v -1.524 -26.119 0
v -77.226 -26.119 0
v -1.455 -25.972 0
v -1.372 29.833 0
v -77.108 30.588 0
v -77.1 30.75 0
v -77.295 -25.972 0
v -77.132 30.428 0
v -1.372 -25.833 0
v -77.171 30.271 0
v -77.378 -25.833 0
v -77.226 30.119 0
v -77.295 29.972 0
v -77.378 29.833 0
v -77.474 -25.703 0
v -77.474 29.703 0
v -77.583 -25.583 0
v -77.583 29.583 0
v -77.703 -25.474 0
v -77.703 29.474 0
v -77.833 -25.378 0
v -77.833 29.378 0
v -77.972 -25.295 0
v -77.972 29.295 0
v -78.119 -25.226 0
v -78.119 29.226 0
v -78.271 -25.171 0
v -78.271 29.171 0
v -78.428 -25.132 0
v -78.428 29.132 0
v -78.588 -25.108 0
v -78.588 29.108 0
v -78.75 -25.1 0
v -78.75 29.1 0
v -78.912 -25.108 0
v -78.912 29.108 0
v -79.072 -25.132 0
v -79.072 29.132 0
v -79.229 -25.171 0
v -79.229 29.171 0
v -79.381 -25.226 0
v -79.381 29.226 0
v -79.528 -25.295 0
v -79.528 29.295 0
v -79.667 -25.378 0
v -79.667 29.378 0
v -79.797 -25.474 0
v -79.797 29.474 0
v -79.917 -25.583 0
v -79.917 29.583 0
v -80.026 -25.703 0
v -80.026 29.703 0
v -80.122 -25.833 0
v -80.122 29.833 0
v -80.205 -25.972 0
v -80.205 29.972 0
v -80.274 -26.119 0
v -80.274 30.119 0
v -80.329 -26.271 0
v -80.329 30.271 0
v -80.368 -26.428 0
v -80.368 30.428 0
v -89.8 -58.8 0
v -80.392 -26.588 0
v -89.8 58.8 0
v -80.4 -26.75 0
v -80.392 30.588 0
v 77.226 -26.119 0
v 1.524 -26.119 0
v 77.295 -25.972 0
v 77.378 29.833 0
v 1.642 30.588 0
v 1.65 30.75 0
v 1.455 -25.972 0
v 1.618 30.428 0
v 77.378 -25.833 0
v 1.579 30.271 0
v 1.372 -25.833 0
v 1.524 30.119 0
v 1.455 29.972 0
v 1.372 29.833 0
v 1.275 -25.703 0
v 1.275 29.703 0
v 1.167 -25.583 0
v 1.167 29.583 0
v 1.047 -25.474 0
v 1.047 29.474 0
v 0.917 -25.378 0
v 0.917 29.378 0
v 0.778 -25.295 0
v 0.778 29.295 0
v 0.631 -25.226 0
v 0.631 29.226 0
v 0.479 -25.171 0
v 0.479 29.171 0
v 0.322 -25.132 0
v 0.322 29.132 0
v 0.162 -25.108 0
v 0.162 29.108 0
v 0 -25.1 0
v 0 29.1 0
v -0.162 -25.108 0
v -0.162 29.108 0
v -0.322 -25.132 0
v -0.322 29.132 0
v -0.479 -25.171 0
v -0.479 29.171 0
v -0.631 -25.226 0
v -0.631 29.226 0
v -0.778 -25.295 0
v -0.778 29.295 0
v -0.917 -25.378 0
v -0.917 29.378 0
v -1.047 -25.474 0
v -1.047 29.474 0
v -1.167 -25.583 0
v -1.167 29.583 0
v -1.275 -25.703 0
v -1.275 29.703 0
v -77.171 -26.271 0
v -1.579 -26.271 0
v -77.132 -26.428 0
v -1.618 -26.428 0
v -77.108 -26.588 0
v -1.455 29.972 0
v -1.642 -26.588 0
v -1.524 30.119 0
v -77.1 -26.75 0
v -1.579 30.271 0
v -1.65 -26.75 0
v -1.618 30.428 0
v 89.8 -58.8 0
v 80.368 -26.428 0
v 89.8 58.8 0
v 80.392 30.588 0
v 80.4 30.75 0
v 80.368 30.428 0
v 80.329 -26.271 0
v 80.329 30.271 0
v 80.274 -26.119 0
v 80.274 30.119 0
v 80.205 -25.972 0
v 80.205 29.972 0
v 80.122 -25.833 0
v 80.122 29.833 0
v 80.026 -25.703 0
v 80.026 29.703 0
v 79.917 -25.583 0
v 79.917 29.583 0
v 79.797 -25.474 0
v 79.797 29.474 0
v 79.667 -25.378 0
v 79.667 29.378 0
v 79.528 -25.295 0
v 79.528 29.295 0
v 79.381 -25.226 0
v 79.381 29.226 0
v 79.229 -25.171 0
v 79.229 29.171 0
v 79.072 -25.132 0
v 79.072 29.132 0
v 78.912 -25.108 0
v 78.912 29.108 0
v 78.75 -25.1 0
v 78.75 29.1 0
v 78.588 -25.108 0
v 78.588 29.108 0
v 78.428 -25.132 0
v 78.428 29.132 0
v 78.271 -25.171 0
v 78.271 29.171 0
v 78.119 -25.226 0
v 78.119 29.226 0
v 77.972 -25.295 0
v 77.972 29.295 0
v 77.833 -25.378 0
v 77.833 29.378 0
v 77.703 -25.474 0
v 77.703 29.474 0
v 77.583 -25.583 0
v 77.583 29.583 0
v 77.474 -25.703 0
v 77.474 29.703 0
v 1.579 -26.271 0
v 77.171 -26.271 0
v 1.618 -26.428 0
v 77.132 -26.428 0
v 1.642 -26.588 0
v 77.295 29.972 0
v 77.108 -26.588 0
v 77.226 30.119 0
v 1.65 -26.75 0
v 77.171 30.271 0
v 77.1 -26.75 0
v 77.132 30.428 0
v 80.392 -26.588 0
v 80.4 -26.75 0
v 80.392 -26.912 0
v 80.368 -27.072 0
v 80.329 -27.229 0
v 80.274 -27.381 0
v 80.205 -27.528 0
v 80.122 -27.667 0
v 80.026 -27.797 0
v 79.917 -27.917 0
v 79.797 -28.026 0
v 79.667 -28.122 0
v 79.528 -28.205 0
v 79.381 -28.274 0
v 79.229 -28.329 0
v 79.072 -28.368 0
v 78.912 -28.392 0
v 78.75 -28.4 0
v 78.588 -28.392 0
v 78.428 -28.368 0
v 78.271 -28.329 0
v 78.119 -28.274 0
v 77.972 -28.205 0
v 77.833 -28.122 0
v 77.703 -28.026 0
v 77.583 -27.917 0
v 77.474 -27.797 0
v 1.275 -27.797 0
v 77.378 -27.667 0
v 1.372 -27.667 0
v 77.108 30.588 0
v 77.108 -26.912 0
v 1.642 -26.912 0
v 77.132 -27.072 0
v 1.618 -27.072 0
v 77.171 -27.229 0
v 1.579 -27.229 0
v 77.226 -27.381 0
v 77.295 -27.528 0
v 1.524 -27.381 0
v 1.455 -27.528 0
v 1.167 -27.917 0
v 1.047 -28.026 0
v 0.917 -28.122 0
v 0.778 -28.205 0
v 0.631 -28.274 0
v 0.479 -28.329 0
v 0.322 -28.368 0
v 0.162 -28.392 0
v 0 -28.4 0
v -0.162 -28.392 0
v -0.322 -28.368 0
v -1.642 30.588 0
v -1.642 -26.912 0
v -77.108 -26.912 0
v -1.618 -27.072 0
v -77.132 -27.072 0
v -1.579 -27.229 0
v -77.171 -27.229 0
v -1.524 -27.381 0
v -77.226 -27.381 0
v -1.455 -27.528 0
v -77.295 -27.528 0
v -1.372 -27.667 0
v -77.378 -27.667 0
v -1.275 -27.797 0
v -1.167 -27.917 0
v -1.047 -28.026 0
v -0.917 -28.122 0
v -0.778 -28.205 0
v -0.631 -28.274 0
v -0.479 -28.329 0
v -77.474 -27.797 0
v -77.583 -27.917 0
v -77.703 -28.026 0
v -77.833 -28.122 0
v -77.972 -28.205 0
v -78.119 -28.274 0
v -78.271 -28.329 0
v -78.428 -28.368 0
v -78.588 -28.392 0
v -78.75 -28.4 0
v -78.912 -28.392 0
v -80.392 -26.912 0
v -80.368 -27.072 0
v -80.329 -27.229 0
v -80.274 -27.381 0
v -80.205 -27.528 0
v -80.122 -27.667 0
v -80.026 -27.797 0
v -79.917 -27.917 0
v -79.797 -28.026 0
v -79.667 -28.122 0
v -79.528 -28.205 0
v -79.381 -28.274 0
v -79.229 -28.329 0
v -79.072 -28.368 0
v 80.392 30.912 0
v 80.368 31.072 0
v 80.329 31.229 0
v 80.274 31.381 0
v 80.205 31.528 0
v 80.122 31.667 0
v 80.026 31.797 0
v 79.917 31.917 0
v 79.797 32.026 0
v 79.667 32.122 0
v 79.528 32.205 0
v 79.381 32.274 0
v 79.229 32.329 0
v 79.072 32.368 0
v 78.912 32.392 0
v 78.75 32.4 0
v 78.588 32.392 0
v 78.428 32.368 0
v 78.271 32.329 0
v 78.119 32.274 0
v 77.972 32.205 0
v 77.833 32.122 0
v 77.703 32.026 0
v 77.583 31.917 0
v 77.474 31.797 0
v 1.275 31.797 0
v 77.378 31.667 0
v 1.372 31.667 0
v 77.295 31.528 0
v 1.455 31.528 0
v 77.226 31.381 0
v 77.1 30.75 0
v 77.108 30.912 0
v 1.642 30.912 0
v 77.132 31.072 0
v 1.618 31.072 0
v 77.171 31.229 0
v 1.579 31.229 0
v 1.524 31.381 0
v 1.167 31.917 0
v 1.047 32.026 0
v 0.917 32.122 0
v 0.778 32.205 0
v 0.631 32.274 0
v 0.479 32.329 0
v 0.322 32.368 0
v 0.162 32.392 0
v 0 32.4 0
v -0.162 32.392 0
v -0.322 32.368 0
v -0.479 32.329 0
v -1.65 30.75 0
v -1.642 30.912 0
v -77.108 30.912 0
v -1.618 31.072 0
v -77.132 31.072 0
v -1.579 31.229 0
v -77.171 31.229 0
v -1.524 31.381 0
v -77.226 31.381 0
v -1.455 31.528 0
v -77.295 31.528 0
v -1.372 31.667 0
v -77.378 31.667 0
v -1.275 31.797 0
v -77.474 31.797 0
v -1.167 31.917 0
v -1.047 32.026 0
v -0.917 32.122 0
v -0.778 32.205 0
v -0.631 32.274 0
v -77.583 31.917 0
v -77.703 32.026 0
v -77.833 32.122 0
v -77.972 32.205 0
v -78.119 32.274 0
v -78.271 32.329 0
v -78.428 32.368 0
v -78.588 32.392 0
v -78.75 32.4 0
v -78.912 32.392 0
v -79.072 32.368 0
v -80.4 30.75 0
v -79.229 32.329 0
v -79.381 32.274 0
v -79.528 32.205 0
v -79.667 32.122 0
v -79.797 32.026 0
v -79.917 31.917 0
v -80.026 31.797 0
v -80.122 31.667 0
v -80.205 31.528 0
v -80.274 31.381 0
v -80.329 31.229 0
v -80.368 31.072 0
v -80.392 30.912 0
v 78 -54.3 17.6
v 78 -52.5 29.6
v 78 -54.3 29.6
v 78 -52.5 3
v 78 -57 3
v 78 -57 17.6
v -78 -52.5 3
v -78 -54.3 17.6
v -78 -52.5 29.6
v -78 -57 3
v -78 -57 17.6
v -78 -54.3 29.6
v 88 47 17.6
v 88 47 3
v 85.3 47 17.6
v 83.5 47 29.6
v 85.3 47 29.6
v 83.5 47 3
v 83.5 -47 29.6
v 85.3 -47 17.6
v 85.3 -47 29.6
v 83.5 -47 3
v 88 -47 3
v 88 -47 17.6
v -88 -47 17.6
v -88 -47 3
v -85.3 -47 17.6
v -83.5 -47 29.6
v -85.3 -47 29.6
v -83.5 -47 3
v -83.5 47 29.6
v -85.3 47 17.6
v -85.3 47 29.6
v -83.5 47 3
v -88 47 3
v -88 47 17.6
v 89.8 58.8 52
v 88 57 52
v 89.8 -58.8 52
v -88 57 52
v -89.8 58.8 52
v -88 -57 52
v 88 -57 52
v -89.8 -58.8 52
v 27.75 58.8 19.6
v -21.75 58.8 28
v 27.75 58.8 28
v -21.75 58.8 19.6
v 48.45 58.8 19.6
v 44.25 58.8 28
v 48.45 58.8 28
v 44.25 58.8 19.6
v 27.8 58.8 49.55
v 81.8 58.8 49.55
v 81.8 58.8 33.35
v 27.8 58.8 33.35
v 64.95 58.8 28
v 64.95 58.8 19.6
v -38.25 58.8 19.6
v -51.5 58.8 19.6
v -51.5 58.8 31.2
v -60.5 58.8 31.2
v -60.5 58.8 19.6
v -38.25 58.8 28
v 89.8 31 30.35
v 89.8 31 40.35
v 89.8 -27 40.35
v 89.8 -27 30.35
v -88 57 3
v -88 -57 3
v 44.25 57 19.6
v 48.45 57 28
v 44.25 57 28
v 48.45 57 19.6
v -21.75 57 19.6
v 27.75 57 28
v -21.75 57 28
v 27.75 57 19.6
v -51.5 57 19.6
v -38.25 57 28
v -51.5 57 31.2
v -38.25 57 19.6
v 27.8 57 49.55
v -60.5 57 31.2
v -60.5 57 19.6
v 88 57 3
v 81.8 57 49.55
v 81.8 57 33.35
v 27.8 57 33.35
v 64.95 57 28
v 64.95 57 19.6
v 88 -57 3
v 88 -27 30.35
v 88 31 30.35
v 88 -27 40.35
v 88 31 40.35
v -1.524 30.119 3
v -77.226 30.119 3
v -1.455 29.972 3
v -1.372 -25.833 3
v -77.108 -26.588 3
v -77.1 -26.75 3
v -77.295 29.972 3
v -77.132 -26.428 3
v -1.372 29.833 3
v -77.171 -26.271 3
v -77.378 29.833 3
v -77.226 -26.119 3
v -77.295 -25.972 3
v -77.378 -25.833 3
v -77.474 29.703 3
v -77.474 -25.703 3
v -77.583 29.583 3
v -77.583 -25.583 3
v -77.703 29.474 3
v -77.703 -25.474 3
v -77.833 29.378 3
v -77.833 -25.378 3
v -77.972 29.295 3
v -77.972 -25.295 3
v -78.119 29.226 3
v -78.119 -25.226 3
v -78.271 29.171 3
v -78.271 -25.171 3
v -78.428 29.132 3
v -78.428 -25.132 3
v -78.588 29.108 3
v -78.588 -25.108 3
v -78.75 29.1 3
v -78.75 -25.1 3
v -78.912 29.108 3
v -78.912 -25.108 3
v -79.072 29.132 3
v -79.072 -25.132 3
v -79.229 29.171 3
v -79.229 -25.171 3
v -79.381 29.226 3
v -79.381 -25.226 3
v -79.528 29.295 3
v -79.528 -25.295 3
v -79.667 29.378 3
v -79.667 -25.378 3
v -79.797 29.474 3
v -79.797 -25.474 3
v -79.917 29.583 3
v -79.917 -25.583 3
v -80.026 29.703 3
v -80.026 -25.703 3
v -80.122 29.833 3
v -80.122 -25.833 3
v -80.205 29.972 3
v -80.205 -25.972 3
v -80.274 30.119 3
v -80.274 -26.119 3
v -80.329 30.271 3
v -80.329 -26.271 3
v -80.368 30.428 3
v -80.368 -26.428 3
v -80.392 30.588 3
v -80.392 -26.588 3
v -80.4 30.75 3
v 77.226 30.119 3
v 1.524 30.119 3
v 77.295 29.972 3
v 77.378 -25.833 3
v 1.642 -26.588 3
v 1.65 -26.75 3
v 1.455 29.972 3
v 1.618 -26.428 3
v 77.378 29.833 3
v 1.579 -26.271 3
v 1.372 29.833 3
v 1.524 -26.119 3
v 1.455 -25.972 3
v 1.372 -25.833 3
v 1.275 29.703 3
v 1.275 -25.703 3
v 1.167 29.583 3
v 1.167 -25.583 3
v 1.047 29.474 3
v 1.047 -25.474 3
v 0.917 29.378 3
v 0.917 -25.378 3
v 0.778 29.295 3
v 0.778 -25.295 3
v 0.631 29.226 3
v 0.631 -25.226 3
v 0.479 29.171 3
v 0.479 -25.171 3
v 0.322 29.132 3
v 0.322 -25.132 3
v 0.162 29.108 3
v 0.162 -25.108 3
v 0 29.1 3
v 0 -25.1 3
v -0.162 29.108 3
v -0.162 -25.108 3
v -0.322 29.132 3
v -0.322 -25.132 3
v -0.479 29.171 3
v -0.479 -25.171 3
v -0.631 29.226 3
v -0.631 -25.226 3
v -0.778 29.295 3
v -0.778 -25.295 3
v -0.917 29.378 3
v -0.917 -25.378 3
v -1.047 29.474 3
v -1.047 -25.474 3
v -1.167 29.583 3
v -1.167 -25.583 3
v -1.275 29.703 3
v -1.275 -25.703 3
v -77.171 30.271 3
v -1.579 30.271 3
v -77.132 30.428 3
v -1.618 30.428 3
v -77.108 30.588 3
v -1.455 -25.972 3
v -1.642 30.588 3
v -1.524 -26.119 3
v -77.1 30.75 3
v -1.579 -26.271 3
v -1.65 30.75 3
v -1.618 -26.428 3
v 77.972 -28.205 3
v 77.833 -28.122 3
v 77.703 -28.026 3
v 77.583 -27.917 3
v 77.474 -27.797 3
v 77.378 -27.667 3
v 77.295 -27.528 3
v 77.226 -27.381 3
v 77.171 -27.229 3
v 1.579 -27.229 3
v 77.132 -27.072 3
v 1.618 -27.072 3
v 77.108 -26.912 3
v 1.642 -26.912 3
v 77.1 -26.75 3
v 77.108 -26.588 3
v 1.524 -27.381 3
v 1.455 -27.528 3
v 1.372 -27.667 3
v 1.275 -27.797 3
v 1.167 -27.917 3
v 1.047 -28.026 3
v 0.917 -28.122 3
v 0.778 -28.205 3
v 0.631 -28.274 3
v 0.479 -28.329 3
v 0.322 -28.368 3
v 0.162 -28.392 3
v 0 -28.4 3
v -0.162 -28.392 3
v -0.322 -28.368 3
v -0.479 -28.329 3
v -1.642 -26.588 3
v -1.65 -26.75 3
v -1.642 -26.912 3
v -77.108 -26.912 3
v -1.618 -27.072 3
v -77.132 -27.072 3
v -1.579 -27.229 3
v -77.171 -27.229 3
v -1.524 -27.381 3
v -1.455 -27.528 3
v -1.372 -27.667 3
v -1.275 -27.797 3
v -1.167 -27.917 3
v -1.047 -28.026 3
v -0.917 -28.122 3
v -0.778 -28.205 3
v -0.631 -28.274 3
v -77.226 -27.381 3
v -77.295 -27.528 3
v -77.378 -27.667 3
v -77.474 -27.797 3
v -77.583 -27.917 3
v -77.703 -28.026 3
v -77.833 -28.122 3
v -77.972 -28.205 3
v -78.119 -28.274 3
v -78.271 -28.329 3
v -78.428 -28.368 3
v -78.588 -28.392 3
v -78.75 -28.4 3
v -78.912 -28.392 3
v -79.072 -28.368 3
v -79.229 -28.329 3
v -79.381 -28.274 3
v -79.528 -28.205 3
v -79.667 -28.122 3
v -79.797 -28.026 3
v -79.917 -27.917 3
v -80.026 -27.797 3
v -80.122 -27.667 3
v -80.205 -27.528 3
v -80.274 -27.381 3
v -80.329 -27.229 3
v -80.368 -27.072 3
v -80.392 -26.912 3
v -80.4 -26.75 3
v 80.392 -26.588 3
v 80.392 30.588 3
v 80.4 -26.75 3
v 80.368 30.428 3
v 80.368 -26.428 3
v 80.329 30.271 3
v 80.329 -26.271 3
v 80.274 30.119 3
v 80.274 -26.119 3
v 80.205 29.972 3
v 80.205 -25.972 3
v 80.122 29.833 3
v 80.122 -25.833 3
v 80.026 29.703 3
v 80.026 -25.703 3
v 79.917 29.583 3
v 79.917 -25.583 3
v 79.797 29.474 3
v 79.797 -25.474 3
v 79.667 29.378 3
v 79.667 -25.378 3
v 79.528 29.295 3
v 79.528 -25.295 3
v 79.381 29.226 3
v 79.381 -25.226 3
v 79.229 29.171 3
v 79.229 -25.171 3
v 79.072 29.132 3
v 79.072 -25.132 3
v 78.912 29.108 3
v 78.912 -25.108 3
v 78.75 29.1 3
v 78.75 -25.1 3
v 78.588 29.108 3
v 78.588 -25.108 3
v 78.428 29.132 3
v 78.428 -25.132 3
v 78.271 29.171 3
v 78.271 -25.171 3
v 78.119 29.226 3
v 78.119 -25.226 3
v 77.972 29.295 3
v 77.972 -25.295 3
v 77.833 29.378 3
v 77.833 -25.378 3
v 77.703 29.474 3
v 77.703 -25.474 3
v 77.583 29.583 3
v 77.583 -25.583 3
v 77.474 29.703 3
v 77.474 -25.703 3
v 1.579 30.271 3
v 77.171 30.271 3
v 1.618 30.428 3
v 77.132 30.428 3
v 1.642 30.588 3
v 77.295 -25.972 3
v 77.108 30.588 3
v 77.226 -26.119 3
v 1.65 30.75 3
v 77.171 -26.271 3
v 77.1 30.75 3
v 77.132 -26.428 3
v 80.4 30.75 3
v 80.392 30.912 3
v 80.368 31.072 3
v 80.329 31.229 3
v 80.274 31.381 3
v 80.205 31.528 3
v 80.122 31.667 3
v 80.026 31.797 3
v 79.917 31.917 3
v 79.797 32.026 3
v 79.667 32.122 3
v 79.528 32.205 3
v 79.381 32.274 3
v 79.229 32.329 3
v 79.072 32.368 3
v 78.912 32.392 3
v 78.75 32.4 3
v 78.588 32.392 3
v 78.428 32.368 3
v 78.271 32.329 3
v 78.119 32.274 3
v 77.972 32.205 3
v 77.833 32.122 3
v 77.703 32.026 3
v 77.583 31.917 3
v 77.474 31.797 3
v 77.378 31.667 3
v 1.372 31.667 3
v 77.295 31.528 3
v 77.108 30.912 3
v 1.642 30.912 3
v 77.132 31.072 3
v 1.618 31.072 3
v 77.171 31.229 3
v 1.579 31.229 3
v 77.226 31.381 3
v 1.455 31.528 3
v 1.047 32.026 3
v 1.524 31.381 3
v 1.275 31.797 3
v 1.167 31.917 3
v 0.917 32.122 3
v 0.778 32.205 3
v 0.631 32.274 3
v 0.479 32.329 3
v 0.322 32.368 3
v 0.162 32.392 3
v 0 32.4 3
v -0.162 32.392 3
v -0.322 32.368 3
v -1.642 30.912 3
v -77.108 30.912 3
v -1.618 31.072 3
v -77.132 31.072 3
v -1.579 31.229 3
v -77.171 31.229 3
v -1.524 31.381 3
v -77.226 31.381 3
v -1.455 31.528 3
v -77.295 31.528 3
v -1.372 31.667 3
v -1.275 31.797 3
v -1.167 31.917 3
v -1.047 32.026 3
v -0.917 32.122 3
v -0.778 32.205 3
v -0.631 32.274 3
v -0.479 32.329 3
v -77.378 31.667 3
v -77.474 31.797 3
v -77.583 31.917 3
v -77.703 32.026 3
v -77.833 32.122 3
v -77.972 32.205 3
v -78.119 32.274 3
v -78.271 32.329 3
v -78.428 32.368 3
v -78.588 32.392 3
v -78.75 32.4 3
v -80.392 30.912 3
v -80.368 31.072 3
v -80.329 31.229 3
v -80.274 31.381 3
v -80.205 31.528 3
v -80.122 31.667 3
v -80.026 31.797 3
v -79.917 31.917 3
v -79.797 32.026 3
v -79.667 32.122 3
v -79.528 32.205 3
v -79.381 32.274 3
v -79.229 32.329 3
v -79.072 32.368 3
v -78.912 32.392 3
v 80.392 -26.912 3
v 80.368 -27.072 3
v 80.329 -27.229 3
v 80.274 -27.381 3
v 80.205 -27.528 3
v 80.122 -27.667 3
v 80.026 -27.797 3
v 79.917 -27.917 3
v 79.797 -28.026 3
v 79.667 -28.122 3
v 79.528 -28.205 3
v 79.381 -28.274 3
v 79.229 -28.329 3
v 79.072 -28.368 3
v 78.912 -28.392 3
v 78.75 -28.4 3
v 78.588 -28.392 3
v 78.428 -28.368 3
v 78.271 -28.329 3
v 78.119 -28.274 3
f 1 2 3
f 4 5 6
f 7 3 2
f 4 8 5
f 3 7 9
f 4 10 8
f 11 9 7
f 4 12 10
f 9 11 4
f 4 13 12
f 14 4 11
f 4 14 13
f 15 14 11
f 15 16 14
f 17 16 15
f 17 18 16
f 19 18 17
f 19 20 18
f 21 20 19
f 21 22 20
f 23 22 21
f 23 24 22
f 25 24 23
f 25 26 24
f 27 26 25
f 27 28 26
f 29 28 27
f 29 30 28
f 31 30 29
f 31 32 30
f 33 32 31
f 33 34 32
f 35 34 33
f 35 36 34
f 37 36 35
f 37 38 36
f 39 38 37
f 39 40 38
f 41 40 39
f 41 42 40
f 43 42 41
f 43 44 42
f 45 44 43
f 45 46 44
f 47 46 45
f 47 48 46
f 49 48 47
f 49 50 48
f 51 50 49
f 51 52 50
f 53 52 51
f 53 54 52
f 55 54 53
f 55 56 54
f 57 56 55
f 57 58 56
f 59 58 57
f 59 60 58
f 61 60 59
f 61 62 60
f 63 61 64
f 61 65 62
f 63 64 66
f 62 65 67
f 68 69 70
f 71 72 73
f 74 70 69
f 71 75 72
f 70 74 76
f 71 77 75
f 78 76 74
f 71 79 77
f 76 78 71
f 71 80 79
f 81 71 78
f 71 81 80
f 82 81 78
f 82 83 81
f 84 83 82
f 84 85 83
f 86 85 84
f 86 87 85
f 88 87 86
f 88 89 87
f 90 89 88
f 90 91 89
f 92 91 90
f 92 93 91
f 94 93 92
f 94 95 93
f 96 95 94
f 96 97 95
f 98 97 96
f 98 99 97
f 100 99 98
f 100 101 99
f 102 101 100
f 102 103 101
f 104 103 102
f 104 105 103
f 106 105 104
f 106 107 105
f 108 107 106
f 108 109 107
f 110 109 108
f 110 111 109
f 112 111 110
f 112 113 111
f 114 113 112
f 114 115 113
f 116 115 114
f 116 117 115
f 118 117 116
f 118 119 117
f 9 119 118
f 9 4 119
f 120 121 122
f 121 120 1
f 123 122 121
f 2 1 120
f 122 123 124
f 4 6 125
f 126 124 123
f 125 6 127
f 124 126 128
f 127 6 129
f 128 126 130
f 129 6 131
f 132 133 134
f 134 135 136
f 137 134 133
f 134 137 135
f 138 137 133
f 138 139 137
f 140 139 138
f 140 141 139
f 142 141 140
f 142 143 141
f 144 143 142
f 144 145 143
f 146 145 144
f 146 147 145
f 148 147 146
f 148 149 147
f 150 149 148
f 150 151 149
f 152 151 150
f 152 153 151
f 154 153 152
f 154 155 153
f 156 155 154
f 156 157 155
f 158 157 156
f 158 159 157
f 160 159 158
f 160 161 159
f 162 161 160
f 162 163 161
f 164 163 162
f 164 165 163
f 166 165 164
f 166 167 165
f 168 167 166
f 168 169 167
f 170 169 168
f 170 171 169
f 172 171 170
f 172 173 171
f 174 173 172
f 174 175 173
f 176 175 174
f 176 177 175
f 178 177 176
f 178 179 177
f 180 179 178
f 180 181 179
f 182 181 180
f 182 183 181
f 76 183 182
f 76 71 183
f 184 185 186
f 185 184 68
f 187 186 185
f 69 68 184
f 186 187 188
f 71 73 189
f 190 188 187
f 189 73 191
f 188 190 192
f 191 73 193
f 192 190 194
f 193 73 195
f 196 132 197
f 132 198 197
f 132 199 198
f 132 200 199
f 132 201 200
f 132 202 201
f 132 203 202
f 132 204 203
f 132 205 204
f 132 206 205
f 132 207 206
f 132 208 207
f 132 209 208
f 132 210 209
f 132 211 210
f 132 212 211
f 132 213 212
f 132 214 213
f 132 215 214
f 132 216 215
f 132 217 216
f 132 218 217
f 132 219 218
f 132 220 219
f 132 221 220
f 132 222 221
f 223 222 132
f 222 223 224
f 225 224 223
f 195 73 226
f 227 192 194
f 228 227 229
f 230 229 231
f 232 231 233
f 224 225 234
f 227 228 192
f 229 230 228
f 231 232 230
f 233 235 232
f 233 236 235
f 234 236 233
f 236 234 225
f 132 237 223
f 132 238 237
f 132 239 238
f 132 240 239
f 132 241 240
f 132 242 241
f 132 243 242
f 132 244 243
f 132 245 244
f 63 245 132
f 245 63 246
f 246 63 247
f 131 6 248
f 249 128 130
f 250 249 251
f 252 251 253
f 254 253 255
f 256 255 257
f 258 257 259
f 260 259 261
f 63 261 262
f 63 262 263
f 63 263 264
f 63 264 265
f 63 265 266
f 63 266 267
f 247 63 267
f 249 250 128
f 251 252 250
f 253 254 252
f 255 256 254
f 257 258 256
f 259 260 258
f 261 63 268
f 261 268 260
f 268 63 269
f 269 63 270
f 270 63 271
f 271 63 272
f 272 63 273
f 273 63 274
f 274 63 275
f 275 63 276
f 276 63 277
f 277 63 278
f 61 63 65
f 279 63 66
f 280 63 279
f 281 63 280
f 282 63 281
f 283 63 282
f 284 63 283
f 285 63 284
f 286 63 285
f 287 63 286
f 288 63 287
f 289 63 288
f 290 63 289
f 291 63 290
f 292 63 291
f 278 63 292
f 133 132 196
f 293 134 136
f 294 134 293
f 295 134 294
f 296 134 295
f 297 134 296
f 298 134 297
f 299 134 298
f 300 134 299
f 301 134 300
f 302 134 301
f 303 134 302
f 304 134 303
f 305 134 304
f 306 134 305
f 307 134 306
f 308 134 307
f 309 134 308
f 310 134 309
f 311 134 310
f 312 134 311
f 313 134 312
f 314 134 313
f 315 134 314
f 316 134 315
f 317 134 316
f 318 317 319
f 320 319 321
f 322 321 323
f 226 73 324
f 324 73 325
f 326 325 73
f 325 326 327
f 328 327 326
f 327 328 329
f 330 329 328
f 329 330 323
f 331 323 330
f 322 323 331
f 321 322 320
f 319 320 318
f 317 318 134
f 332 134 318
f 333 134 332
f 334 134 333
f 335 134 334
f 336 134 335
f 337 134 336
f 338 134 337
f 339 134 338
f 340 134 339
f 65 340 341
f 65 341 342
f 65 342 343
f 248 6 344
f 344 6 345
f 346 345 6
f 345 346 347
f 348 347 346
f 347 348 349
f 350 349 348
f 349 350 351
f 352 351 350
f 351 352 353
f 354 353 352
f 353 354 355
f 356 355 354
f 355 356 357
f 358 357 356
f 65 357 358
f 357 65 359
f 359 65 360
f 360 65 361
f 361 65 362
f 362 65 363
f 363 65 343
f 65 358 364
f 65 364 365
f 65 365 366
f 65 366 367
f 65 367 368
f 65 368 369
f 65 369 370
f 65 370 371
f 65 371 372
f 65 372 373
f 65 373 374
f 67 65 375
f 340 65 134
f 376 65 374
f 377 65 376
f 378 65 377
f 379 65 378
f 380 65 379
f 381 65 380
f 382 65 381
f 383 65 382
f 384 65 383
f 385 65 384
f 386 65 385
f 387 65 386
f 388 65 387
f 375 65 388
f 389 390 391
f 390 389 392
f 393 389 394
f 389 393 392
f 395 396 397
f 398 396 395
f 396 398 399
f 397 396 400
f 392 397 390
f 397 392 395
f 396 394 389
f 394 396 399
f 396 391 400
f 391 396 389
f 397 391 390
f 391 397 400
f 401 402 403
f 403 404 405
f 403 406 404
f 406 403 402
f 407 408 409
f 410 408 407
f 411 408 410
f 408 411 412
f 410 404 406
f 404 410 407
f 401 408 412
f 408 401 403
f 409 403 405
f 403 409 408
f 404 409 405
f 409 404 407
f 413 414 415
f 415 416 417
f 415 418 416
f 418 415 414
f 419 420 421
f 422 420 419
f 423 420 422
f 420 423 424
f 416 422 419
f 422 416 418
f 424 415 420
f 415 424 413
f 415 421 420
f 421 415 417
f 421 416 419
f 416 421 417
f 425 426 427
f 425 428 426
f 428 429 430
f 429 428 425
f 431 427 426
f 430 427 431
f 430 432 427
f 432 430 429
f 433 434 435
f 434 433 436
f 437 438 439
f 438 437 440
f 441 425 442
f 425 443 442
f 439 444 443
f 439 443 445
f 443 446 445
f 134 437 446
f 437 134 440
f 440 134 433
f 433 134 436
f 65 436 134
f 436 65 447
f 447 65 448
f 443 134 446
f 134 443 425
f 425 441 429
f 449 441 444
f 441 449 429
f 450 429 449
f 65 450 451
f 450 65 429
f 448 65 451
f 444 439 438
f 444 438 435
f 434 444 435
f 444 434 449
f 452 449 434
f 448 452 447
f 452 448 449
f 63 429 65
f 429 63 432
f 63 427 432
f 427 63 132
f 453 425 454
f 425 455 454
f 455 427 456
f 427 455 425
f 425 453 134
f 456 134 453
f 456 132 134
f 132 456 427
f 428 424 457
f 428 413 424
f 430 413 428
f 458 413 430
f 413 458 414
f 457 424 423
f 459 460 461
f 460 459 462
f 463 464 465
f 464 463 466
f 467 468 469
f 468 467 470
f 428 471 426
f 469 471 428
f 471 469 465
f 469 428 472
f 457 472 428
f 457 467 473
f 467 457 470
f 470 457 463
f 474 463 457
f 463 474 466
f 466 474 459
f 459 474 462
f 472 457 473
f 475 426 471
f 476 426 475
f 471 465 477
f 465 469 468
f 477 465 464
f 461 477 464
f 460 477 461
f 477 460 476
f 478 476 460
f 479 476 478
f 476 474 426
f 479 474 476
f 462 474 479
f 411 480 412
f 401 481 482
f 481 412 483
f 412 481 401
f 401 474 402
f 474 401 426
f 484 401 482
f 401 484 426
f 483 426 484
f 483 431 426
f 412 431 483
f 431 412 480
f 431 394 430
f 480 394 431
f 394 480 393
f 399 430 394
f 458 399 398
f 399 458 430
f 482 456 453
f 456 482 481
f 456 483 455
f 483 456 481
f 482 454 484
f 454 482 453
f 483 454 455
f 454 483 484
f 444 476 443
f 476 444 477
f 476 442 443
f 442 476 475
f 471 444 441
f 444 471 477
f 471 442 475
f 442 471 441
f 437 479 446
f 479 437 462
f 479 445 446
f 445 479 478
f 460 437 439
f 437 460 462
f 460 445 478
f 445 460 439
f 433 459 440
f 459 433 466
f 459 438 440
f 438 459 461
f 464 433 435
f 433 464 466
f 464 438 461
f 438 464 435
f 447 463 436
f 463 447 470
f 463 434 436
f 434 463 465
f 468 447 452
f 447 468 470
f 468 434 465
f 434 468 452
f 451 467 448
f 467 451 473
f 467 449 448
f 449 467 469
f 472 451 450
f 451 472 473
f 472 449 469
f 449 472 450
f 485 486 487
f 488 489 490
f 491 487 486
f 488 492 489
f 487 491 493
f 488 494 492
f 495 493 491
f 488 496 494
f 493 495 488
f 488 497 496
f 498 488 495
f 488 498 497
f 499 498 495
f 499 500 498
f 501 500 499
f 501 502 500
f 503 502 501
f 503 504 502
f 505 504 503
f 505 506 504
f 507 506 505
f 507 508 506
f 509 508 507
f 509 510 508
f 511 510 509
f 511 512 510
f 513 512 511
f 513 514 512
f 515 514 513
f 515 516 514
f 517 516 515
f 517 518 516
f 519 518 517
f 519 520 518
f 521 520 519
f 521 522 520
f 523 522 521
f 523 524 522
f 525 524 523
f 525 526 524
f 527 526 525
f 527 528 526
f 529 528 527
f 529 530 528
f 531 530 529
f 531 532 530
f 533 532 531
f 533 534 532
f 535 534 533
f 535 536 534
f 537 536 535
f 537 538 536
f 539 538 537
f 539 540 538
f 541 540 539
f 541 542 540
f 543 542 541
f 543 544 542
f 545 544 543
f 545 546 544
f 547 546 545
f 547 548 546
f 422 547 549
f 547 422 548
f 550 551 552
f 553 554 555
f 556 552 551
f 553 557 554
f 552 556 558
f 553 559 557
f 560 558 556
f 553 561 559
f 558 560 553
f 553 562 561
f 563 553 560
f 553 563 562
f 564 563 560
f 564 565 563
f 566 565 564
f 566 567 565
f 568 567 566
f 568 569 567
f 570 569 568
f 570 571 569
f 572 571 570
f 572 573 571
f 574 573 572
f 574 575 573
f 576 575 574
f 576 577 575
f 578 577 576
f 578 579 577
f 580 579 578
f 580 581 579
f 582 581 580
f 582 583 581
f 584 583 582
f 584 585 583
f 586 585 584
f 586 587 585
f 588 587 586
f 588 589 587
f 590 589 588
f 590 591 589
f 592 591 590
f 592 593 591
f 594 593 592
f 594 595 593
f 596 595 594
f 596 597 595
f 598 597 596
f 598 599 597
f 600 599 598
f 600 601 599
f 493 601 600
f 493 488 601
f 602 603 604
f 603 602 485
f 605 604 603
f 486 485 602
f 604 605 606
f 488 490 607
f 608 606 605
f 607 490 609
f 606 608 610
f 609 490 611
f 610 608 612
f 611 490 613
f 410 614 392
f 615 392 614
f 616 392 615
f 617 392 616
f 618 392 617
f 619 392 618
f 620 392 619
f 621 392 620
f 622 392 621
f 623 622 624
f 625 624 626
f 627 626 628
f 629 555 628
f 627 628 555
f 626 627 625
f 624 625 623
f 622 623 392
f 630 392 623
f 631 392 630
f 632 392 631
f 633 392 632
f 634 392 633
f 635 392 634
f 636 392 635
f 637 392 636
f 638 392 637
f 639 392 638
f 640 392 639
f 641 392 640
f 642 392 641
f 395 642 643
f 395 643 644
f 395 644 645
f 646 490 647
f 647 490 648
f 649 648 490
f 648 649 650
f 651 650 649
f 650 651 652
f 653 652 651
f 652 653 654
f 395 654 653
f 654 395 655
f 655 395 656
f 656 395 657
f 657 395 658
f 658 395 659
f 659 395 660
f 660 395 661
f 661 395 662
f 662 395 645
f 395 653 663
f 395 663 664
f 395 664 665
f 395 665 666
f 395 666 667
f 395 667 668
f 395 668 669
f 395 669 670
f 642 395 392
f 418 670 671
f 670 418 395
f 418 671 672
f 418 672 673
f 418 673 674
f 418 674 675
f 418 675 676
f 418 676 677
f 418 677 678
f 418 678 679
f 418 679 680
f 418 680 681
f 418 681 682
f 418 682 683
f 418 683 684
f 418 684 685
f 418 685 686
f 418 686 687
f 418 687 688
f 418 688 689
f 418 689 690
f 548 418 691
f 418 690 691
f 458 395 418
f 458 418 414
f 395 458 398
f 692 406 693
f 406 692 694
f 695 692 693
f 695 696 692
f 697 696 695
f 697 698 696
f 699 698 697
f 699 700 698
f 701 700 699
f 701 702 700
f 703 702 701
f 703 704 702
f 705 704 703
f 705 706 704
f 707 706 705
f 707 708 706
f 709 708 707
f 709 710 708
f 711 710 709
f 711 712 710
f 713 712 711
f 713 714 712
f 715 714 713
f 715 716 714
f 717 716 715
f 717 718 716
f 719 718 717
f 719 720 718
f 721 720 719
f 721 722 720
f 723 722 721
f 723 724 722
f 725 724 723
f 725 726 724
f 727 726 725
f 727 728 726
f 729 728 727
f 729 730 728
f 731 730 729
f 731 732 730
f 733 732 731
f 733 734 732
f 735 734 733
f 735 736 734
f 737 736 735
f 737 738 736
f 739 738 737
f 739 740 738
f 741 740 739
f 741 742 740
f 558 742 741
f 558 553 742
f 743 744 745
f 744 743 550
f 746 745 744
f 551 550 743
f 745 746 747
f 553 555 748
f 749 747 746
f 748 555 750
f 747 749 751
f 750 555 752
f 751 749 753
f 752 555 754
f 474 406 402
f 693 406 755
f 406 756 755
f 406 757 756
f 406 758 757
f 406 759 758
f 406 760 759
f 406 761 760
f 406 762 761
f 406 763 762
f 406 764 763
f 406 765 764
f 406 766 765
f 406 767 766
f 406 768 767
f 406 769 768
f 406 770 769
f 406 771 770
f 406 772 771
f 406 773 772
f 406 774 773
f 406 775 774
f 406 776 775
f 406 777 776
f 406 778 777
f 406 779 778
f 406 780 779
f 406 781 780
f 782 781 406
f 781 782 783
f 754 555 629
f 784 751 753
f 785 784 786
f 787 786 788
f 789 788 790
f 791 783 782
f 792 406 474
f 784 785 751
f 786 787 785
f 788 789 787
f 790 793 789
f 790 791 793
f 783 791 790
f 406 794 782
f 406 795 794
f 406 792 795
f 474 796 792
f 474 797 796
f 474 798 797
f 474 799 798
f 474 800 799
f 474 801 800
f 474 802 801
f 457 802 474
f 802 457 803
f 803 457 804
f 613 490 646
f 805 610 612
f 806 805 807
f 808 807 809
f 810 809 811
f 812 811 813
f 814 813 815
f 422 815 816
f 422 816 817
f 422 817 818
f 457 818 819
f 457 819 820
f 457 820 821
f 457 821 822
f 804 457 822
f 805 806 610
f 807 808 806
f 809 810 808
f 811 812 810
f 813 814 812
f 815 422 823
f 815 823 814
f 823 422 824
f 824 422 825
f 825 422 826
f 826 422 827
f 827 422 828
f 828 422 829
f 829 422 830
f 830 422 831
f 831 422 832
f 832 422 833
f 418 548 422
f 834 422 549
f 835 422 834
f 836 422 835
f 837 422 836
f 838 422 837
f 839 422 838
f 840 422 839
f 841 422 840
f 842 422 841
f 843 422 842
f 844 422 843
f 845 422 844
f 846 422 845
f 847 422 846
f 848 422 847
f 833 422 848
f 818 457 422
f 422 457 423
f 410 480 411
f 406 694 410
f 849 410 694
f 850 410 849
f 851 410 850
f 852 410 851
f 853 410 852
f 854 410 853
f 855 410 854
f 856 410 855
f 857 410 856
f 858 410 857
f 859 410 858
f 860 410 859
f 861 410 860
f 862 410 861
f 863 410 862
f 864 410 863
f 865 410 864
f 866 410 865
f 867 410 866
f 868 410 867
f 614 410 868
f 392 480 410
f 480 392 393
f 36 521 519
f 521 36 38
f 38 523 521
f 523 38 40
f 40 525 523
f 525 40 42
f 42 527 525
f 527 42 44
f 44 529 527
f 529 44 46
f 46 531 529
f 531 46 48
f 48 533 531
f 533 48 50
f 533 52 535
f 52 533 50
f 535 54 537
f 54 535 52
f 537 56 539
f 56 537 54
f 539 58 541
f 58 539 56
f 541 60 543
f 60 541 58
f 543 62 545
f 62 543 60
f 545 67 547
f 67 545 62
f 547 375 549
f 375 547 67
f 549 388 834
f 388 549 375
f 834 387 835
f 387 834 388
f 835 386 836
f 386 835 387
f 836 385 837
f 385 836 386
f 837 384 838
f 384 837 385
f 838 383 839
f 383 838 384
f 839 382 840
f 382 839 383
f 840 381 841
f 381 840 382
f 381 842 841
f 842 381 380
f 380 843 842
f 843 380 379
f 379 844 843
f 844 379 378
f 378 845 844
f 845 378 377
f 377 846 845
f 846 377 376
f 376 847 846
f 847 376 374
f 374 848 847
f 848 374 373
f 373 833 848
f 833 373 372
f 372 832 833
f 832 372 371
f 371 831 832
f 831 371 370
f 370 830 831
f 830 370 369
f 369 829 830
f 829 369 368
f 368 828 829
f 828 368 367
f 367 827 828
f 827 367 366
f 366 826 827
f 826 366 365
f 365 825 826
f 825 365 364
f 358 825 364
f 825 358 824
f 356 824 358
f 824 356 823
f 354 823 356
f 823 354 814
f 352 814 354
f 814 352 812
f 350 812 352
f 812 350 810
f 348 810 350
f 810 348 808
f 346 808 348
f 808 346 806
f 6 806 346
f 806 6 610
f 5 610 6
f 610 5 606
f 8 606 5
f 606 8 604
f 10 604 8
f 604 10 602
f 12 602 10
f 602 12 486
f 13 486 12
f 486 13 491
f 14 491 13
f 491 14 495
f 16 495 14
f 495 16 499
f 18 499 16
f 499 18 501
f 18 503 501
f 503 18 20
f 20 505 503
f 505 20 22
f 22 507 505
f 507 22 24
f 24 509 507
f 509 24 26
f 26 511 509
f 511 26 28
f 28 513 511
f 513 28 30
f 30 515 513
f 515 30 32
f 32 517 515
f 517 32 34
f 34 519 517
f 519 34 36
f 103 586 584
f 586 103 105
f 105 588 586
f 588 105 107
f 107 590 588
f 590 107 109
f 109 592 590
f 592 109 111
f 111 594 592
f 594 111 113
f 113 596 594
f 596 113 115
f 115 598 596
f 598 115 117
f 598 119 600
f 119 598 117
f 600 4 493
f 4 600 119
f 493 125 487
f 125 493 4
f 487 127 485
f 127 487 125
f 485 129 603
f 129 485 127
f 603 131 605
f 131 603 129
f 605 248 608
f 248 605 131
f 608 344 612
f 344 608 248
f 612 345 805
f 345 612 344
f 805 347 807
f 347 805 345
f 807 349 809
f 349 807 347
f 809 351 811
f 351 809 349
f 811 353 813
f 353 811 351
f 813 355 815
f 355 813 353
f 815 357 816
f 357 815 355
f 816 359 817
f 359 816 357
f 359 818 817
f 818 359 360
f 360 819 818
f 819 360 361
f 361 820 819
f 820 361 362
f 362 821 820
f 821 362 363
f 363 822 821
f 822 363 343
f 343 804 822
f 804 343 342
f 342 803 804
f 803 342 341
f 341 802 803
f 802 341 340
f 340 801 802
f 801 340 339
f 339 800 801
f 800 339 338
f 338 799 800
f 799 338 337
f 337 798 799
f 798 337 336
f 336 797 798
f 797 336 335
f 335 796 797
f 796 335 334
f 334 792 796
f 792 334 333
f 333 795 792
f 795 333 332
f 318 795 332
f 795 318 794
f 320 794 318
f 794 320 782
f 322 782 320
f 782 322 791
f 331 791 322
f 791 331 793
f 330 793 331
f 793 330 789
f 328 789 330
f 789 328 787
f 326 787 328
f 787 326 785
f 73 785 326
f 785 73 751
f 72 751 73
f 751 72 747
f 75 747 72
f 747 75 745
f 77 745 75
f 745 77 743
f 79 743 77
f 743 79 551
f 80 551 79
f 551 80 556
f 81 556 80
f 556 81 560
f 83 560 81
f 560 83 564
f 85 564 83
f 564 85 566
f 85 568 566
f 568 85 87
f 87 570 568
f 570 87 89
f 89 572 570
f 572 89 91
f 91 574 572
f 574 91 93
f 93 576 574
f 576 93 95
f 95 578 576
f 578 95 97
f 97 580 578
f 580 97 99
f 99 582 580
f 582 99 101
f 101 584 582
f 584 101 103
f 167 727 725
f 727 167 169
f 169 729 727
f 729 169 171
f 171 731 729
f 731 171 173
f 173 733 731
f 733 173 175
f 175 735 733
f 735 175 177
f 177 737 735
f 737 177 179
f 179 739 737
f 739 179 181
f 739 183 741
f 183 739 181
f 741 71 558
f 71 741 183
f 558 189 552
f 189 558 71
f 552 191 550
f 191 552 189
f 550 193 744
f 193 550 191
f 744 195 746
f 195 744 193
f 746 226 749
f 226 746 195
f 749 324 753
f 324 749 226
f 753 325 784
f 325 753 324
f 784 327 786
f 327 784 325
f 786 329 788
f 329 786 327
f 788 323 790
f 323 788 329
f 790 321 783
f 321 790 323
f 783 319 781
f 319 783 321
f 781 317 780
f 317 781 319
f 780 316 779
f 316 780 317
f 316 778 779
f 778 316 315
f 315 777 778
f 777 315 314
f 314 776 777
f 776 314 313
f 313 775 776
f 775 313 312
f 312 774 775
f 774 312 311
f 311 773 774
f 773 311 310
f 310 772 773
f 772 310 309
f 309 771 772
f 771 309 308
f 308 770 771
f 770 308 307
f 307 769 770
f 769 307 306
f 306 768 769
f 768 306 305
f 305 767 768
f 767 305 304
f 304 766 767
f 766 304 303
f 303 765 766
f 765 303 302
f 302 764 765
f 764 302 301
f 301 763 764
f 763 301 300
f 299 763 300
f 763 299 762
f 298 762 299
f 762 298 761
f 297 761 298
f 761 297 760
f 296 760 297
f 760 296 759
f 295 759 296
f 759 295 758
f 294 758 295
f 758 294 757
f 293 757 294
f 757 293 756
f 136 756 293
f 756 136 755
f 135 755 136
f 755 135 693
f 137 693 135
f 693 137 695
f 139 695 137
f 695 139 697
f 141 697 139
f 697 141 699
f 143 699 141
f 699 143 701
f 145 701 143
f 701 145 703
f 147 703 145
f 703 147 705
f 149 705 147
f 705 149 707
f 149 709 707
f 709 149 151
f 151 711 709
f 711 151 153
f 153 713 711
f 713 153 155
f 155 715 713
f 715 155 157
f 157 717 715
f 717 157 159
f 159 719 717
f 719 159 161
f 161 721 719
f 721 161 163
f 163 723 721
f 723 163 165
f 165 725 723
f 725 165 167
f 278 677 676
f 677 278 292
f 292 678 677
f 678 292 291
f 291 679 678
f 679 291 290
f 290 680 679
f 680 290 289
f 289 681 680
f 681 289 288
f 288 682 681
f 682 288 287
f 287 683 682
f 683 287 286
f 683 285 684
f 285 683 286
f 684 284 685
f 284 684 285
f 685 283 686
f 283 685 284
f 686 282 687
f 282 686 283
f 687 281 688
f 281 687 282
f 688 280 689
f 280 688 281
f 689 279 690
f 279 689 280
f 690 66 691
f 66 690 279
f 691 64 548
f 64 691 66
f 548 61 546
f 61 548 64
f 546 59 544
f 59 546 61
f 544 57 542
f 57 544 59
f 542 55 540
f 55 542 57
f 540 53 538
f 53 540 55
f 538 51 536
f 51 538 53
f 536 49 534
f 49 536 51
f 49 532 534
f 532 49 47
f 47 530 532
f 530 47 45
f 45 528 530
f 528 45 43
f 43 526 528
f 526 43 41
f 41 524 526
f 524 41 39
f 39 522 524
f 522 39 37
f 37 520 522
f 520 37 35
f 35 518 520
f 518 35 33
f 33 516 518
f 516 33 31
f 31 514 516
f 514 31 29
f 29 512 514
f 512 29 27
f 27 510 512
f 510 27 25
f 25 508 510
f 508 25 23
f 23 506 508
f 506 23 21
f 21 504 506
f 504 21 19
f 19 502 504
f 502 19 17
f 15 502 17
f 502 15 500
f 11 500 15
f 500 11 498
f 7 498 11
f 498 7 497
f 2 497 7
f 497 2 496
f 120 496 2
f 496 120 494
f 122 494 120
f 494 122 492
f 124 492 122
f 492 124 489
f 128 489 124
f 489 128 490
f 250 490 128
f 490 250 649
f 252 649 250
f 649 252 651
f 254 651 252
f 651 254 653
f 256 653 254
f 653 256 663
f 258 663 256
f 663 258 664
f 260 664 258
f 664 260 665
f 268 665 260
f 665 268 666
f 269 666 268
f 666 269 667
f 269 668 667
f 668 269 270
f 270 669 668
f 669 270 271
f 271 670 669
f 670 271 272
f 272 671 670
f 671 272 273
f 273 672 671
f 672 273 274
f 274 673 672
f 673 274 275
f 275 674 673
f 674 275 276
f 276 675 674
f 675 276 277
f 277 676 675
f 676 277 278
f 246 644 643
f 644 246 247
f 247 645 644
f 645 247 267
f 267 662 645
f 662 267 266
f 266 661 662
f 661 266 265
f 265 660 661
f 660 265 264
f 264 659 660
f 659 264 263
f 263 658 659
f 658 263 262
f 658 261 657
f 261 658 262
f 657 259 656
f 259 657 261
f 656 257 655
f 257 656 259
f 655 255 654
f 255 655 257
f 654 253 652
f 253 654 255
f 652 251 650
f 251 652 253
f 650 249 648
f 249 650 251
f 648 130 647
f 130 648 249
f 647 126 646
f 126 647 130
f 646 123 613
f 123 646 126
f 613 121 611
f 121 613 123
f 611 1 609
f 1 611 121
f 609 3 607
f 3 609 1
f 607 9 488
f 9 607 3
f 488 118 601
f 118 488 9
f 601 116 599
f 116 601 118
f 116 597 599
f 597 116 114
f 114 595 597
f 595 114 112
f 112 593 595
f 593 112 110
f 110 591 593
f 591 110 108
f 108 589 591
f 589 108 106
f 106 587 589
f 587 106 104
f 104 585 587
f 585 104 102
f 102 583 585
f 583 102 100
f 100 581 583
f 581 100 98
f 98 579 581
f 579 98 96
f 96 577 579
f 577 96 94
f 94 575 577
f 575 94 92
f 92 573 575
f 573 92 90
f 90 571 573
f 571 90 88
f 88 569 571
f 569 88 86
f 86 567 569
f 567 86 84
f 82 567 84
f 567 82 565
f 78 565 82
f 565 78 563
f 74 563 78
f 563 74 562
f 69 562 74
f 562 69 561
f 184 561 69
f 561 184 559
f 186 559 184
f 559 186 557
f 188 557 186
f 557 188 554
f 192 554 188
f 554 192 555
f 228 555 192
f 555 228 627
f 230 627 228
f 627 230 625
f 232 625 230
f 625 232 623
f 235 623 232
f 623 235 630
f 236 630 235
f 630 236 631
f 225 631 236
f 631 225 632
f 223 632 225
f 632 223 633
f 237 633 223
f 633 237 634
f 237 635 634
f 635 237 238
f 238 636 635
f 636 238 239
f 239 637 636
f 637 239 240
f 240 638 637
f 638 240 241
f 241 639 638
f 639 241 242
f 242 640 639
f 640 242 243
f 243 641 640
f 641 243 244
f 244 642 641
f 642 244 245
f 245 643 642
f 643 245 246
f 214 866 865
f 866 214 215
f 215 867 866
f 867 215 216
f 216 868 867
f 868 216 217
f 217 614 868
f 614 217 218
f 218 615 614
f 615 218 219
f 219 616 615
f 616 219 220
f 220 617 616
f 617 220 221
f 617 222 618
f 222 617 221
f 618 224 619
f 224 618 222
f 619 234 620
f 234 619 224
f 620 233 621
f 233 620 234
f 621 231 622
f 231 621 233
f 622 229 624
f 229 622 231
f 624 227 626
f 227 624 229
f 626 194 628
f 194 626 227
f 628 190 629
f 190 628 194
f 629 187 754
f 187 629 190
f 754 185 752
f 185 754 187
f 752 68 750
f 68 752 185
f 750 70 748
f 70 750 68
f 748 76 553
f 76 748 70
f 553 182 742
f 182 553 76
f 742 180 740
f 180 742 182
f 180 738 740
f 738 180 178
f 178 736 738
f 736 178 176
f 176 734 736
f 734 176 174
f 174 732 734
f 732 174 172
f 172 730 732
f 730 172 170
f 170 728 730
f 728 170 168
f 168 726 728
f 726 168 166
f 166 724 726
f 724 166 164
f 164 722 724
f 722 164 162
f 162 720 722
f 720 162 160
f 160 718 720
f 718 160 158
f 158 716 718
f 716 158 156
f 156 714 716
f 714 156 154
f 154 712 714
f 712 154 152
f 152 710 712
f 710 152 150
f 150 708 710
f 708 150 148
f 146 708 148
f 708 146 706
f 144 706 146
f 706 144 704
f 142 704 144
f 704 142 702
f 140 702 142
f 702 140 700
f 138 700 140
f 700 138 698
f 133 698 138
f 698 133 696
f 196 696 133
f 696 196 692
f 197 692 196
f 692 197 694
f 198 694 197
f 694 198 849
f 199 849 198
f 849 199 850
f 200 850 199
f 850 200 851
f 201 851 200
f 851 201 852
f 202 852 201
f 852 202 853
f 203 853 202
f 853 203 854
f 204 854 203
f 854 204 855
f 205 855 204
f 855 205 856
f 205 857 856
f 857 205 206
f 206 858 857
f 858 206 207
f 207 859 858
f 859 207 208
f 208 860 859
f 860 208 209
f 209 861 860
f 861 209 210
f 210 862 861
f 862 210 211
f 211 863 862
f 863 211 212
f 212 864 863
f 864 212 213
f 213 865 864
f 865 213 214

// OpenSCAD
$fn = 64;


base_height = 3.00;
height = 46.00 + base_height;

wall = 1.80;

y_offset = 4.00;

workspace = [176.00, 110.00 + y_offset];
workspace_wall = [workspace[0] + wall * 2.00, workspace[1] + wall * 2.00];

module grid(x, y, width, height, center = true)
{
    x_space = width / (x - 1);
    y_space = height / (y - 1);
    translate(center ? [-(x_space * (x - 1))/2, -(y_space * (y - 1))/2, 0] : [0, 0, 0])
        for (i = [0:x_space:(x - 1) * x_space]) {
            for (j = [0:y_space:(y - 1) * y_space]) {
                translate([i, j, 0]) {
                    children();
                }
            }
        }
}

module prism(l, w, h){
    polyhedron(
           points=[[0,0,0], [l,0,0], [l,w,0], [0,w,0], [0,w,h], [l,w,h]],
           faces=[[0,1,2,3],[5,4,3,2],[0,4,5,1],[0,3,4],[5,2,1]]
           );
}


module led_corner(w = 10.00, h = 12.00, thickness = wall) {
    translate([-w / 2.00, 0, 0]) {
        linear_extrude(h)
            square([w, thickness + 3.40]);
        
        translate([0.00, 0.00, h])
            linear_extrude(12.00)
                square([w, thickness]);
    }
}

module sdcard_slot(h = 38.00) {
    union() {
        linear_extrude(1.00)
            difference() {
                square([7.30, 25.10], center = true);
                square([5.00, 22.00], center = true);
            }

        linear_extrude(h)
        difference() {
            square([7.30 + 2.00, 25.10 + 2.00], center = true);
            square([7.30, 25.10], center = true);
        }
    }
}
/*
difference() {
    rotate([0.00, -45.00, 0.00])
        sdcard_slot();
    translate([0, 0, 23])
        linear_extrude(8.00)
            square([80.00, 80.00], center = true);
}
*/


linear_extrude(base_height)
    difference() {
        square(workspace, center = true);
        translate([0, y_offset / 2.00, 0])
            grid(3, 2, 157.50, 57.50)
                circle(r = 1.65);
    }
    
first_board_level = base_height + 15.00 + 1.60;
second_board_level = first_board_level + 12.00 + 1.75;



difference() {
    union() {
        linear_extrude(height + base_height) {
            difference() {
                square(workspace_wall, center = true);
                square(workspace, center = true);
            }
        }
        
        color("red")
            translate([0.00, -workspace_wall[1] / 2, 0])
                mirror([0, 1, 0])
                    translate([0, -wall / 2.00  - 5.40, 0])
                        led_corner(w = workspace[0] - 20.00, h = first_board_level - 2.00);
        
        color("red")
            translate([workspace_wall[0] / 2, 0, 0])
                mirror([-90, 90, 0])
                    translate([0, -wall / 2.00 - 5.40, 0])
                        led_corner(w = workspace[1] - 20.00, h = first_board_level - 2.00);
        
        color("red")
            translate([-workspace_wall[0] / 2, 0, 0])
                mirror([90, 90, 0])
                    translate([0, -wall / 2.00 - 5.40, 0])
                        led_corner(w = workspace[1] - 20.00, h = first_board_level - 2.00);
    }
    
    translate([workspace_wall[0] / 2, y_offset / 2, second_board_level - 3.00])
        linear_extrude(10) {
            difference() {
                square([wall * 2, 58.00], center = true);
            }
        }
        
    
    translate([55.70, workspace_wall[1] / 2, second_board_level])
        linear_extrude(16.20) {
                square([54.00, wall * 2], center = true);
        }
    
    translate([56.70, workspace_wall[1] / 2, first_board_level])
        linear_extrude(8.40) {
                square([16.50, wall * 2], center = true);
        }
    
    translate([36.00, workspace_wall[1] / 2, first_board_level])
        linear_extrude(8.40) {
                square([16.50, wall * 2], center = true);
        }
        
    translate([-30.00, workspace_wall[1] / 2, first_board_level])
        linear_extrude(8.40) {
                square([16.50, wall * 2], center = true);
        }
        
    translate([-56.00, workspace_wall[1] / 2, first_board_level])
        linear_extrude(11.60) {
                square([9.00, wall * 2], center = true);
        }
}
